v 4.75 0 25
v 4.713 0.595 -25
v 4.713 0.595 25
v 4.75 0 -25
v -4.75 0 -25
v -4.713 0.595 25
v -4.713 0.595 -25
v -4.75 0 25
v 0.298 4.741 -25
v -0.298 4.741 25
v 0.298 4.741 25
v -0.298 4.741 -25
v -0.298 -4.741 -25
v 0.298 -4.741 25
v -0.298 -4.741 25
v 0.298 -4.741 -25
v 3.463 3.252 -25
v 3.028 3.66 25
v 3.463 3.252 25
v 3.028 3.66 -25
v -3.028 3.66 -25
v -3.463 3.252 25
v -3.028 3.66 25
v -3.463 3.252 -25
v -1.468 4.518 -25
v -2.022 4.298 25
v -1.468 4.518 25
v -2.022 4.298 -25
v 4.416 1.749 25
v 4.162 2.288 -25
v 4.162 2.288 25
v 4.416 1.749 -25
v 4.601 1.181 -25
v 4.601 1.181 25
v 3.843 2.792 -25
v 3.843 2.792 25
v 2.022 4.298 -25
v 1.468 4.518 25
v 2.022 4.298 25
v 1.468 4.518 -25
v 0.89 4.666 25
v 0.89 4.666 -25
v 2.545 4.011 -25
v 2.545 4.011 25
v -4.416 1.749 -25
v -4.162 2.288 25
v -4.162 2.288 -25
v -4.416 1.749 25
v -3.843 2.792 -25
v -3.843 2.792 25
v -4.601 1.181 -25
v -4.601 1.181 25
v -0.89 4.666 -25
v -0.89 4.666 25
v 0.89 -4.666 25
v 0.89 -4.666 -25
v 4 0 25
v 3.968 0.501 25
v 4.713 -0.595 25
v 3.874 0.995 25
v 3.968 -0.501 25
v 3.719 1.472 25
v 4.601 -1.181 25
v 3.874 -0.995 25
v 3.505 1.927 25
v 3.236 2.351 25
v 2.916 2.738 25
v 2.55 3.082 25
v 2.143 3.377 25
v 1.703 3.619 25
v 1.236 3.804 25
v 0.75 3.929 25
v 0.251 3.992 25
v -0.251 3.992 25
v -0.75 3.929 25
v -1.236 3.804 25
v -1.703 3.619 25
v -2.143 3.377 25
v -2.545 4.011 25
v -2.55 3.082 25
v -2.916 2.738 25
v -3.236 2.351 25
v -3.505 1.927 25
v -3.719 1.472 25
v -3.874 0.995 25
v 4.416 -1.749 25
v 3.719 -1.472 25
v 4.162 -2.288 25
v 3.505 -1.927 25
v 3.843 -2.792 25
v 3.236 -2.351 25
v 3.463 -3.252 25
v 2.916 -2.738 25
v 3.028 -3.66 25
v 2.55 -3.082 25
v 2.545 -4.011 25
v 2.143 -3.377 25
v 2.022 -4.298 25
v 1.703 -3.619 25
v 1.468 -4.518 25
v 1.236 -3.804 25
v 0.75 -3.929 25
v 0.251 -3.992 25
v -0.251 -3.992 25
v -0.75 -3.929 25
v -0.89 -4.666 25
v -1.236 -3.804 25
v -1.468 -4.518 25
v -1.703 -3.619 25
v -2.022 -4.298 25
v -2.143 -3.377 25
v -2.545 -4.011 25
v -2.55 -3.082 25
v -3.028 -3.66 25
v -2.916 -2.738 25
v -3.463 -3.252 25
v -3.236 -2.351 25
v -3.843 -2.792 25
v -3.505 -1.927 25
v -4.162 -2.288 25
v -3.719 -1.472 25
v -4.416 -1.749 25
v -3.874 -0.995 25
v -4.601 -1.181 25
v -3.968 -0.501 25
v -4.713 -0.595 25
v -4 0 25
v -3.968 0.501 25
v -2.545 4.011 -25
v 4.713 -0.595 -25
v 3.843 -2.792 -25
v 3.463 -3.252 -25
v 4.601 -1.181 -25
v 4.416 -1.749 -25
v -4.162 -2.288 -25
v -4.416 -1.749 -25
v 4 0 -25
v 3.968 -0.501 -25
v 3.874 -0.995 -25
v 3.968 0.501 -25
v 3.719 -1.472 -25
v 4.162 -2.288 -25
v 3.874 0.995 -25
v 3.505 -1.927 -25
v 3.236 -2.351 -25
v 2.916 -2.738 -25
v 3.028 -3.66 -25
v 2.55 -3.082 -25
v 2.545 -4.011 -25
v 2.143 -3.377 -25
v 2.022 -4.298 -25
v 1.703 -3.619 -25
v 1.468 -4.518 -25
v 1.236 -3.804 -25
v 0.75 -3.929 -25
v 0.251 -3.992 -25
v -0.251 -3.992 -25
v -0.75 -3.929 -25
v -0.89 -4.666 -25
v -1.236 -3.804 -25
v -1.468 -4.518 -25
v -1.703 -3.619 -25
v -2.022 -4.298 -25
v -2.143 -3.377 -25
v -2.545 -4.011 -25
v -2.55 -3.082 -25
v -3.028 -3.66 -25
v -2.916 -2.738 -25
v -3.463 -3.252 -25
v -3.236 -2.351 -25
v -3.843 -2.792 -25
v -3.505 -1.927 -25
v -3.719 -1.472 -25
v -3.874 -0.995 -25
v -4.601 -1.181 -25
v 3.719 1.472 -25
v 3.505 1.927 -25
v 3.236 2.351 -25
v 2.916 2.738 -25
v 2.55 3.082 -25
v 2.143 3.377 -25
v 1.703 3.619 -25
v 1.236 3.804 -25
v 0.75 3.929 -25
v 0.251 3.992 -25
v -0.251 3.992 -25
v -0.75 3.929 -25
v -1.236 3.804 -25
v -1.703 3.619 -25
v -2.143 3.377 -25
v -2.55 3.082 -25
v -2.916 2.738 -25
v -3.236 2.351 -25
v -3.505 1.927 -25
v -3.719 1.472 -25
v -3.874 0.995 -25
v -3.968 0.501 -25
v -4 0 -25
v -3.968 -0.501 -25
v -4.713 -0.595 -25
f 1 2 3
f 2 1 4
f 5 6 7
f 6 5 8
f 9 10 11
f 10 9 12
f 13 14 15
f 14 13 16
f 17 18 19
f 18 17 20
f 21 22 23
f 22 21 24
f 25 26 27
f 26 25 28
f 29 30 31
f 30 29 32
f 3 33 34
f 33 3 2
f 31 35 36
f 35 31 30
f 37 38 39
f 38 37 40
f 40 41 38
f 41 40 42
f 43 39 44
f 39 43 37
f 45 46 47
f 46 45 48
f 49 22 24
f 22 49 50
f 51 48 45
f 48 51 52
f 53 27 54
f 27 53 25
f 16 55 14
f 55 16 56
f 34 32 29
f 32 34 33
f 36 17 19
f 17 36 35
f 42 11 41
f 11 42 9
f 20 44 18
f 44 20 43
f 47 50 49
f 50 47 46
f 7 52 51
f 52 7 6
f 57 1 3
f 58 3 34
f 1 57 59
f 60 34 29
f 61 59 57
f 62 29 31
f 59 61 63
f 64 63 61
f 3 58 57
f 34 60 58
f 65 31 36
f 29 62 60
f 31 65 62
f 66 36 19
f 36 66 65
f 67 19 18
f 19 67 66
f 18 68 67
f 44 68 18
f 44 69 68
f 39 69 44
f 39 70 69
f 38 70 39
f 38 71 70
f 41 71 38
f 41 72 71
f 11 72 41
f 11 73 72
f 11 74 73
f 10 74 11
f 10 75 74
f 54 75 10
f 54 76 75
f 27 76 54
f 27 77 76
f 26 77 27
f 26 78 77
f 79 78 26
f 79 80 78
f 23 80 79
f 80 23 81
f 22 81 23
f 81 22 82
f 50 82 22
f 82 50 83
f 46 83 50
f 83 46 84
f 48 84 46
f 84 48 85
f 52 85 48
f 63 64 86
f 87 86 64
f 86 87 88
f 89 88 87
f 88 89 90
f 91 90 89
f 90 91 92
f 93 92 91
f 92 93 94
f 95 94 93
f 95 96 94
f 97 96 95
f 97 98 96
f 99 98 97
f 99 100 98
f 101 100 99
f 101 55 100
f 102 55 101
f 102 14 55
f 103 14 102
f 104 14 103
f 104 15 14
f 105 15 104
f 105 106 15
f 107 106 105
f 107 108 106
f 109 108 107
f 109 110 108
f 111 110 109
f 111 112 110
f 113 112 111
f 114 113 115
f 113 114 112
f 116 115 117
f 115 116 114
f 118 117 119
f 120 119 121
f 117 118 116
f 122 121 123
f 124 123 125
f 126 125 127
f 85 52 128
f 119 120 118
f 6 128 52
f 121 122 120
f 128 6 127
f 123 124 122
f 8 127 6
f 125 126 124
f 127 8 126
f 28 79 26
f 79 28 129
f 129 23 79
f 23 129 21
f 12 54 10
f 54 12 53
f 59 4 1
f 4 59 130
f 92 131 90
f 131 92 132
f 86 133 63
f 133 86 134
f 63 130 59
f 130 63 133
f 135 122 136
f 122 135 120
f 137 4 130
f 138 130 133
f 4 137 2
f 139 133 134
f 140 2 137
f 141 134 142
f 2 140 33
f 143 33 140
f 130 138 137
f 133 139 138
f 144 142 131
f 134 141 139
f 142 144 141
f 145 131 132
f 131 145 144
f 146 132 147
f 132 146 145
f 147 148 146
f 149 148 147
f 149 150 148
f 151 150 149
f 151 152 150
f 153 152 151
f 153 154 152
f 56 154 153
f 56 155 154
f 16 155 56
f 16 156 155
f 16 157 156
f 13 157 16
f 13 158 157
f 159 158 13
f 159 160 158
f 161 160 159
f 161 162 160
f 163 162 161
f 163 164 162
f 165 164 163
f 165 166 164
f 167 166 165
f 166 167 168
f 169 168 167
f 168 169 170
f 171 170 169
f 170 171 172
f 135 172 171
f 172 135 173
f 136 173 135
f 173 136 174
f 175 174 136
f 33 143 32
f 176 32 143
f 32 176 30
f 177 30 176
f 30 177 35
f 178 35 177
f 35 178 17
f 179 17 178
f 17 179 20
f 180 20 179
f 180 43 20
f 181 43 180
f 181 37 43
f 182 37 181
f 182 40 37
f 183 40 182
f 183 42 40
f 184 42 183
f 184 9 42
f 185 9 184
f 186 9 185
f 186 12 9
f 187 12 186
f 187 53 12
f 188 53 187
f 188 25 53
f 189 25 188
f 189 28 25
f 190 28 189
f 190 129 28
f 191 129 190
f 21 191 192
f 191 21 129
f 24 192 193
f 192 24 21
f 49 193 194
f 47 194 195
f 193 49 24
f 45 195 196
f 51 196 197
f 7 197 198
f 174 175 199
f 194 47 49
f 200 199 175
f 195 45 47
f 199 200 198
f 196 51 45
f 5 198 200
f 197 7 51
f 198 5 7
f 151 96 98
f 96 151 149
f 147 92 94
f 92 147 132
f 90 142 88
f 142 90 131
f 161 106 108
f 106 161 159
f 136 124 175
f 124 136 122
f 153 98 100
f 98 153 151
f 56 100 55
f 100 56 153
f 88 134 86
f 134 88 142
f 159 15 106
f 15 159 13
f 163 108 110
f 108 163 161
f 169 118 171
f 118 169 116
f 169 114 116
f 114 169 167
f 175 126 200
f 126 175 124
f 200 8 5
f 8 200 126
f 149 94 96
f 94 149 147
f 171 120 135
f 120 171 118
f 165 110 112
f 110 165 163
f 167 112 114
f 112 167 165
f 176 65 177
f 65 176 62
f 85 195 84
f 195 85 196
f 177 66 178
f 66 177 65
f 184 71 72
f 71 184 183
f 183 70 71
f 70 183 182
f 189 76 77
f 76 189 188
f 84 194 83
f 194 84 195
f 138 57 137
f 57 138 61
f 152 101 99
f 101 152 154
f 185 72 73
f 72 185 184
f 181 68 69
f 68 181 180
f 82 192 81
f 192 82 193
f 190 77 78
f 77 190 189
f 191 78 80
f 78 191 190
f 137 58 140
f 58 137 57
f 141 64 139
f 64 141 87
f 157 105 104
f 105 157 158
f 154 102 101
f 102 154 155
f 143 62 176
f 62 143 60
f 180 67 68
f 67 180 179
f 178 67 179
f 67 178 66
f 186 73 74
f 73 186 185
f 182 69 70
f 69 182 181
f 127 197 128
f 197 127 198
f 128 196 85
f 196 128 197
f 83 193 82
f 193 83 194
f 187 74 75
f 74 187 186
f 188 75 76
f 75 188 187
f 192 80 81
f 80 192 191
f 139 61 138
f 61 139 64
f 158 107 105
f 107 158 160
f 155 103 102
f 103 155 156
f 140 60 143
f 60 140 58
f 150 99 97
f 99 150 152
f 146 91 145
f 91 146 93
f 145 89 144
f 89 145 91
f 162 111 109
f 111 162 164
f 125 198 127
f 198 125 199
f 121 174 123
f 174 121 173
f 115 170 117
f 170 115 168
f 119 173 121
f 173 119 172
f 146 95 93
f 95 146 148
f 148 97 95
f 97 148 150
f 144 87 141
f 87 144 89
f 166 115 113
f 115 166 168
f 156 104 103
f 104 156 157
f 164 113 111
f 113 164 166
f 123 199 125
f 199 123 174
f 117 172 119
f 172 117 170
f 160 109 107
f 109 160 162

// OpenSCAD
$fn = 50;


difference() {
	union() {
		translate(v = [0, 0, -25.0000000000]) {
			cylinder(h = 50, r = 4.7500000000);
		}
	}
	union() {
		translate(v = [0, 0, -100.0000000000]) {
			cylinder(h = 200, r = 4.0000000000);
		}
	}
}
